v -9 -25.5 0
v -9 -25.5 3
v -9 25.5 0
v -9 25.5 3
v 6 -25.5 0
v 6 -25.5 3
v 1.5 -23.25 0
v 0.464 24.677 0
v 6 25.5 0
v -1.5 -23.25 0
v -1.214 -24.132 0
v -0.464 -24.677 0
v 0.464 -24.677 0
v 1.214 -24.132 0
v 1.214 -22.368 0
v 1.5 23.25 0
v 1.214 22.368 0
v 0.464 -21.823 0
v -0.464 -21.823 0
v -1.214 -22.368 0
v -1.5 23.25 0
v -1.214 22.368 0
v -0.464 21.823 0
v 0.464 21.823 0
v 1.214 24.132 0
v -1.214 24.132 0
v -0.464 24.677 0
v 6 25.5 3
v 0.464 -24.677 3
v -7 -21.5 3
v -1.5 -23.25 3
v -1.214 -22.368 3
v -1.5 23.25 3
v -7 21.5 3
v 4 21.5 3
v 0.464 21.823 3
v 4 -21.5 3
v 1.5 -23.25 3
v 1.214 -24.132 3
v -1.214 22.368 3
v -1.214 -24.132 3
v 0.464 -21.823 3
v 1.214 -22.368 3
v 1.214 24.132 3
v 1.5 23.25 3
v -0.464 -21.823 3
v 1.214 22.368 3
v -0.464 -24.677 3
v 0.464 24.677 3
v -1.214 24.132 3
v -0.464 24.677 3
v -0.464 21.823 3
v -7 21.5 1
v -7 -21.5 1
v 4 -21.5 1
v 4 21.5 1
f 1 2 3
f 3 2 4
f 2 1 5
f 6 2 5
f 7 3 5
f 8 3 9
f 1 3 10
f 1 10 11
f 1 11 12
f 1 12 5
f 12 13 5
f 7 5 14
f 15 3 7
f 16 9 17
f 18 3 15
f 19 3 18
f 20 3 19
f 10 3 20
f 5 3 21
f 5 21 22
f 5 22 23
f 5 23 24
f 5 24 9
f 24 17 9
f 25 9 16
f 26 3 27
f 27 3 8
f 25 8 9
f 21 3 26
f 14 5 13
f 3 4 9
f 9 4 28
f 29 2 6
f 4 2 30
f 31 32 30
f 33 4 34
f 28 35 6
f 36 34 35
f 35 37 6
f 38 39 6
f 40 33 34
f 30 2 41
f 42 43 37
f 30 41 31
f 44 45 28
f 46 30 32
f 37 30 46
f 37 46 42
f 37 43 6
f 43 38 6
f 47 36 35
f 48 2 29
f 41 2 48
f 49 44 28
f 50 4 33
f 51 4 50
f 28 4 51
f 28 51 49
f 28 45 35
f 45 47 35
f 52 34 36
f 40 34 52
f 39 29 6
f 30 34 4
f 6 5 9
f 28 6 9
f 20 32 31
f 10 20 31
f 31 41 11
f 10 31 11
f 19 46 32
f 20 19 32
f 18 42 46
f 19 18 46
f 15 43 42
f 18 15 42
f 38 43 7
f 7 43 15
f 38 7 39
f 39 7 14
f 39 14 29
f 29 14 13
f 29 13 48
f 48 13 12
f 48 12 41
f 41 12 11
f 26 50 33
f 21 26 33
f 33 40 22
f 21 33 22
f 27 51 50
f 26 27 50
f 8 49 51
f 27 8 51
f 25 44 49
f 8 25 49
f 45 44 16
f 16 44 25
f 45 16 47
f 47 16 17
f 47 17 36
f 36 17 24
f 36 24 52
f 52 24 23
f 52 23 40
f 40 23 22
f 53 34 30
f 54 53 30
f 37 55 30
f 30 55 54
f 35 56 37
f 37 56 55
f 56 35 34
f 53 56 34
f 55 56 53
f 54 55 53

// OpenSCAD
difference(){
	translate([-9,-25.5,0])cube([15,51,3]);
	union(){
		translate([0,-23.25,0])cylinder(r=3/2,h=10, $fn=10);
		translate([0,23.25,0])cylinder(r=3/2,h=10, $fn=10);
	}
	translate([-7,-21.5,1])cube([11,43,3]);
}
